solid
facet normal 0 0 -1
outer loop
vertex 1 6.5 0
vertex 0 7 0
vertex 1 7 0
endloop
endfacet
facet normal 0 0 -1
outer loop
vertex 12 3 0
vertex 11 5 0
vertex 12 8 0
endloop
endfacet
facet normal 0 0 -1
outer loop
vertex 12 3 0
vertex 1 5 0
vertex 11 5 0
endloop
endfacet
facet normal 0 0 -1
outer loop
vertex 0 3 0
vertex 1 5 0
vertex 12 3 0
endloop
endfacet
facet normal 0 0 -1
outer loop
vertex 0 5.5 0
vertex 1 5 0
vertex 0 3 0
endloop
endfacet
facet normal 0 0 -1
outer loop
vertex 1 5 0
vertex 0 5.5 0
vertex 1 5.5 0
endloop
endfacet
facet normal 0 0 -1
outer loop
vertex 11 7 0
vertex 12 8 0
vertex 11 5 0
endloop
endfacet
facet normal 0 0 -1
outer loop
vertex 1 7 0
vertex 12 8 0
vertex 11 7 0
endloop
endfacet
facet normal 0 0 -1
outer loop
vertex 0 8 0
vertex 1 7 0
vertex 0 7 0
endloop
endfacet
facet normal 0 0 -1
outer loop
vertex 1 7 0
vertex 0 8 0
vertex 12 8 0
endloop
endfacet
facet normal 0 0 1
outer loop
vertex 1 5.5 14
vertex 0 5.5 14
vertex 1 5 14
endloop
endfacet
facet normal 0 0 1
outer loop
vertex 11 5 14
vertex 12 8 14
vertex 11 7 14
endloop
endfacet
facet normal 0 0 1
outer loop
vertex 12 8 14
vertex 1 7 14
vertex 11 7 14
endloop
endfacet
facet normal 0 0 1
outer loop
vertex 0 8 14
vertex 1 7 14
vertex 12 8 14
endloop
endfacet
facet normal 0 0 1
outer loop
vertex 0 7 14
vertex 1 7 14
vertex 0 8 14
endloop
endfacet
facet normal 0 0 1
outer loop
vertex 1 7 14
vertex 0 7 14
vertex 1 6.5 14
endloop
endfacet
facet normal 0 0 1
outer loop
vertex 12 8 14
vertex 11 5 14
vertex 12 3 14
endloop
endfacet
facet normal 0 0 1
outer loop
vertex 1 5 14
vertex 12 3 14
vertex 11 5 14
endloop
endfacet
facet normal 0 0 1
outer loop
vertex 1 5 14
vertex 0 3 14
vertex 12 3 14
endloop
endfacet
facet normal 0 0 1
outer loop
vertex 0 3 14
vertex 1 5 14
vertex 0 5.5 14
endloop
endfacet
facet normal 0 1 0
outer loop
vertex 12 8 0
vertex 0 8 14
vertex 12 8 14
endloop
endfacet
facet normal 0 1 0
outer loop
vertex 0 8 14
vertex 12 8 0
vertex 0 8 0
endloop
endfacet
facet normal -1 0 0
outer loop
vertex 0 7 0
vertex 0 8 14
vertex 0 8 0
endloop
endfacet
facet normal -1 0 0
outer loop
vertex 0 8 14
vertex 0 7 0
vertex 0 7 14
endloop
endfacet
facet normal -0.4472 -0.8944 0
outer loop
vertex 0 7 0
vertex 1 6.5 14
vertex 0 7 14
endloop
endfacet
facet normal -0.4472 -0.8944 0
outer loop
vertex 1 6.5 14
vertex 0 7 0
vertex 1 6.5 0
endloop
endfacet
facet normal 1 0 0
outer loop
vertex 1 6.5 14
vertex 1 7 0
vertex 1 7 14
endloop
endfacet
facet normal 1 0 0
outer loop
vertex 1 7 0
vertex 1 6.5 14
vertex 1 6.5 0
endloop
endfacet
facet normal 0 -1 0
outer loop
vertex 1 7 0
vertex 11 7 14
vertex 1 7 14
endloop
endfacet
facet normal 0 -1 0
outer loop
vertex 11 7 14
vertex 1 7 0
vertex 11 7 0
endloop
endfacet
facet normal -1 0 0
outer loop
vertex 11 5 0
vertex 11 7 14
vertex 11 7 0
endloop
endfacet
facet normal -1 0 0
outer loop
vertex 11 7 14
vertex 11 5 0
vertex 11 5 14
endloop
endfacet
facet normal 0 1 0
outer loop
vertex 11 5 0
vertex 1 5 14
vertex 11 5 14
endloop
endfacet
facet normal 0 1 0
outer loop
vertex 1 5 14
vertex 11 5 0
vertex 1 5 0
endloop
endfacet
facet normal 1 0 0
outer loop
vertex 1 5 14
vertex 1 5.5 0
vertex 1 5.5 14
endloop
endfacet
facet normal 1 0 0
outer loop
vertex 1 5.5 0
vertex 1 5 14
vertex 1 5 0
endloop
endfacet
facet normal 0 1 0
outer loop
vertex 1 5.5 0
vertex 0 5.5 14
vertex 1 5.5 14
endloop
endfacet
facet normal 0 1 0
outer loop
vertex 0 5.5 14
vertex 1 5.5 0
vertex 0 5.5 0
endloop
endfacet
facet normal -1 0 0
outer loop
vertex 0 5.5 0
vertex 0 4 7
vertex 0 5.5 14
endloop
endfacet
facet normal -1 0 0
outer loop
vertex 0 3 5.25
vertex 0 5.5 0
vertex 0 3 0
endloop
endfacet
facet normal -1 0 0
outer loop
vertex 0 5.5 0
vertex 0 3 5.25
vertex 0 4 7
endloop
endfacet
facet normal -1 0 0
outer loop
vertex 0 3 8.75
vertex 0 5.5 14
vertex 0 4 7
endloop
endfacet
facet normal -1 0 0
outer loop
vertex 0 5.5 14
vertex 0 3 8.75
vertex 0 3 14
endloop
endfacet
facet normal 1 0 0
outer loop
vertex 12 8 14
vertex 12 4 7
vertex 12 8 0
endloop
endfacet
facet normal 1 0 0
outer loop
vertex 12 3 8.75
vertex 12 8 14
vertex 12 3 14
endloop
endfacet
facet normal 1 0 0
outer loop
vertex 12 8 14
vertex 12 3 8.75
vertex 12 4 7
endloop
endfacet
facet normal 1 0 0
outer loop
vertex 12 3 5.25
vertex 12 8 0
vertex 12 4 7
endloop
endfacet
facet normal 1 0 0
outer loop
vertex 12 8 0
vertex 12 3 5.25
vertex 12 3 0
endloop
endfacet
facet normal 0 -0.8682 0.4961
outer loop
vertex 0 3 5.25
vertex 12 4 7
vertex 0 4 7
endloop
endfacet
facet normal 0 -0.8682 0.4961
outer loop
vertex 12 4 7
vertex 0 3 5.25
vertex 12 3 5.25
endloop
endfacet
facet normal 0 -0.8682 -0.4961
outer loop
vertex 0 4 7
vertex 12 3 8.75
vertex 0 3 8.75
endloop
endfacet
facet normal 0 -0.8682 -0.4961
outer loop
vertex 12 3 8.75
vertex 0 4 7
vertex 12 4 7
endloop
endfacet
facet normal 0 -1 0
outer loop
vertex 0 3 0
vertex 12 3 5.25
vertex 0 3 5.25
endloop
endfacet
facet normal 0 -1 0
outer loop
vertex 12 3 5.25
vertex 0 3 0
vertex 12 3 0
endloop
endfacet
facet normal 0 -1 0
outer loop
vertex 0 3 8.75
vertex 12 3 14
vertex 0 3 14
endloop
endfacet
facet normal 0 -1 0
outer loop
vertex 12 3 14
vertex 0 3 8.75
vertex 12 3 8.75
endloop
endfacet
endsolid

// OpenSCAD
difference(){
    linear_extrude(height = 14) {
        polygon(points=[[0,0],[12,0],[12,8],[0,8],[0,7],[1,6.5],[1,7],[11,7],[11,5],[1,5],[1,5.5],[0,5.5]]);
    }
    translate([-2,0,14]) rotate([0,90,0]) linear_extrude(height = 15) {
        polygon(points=[[0,0],[7,4],[14,0]]);
    }
    cube([15,3,20]);
}
